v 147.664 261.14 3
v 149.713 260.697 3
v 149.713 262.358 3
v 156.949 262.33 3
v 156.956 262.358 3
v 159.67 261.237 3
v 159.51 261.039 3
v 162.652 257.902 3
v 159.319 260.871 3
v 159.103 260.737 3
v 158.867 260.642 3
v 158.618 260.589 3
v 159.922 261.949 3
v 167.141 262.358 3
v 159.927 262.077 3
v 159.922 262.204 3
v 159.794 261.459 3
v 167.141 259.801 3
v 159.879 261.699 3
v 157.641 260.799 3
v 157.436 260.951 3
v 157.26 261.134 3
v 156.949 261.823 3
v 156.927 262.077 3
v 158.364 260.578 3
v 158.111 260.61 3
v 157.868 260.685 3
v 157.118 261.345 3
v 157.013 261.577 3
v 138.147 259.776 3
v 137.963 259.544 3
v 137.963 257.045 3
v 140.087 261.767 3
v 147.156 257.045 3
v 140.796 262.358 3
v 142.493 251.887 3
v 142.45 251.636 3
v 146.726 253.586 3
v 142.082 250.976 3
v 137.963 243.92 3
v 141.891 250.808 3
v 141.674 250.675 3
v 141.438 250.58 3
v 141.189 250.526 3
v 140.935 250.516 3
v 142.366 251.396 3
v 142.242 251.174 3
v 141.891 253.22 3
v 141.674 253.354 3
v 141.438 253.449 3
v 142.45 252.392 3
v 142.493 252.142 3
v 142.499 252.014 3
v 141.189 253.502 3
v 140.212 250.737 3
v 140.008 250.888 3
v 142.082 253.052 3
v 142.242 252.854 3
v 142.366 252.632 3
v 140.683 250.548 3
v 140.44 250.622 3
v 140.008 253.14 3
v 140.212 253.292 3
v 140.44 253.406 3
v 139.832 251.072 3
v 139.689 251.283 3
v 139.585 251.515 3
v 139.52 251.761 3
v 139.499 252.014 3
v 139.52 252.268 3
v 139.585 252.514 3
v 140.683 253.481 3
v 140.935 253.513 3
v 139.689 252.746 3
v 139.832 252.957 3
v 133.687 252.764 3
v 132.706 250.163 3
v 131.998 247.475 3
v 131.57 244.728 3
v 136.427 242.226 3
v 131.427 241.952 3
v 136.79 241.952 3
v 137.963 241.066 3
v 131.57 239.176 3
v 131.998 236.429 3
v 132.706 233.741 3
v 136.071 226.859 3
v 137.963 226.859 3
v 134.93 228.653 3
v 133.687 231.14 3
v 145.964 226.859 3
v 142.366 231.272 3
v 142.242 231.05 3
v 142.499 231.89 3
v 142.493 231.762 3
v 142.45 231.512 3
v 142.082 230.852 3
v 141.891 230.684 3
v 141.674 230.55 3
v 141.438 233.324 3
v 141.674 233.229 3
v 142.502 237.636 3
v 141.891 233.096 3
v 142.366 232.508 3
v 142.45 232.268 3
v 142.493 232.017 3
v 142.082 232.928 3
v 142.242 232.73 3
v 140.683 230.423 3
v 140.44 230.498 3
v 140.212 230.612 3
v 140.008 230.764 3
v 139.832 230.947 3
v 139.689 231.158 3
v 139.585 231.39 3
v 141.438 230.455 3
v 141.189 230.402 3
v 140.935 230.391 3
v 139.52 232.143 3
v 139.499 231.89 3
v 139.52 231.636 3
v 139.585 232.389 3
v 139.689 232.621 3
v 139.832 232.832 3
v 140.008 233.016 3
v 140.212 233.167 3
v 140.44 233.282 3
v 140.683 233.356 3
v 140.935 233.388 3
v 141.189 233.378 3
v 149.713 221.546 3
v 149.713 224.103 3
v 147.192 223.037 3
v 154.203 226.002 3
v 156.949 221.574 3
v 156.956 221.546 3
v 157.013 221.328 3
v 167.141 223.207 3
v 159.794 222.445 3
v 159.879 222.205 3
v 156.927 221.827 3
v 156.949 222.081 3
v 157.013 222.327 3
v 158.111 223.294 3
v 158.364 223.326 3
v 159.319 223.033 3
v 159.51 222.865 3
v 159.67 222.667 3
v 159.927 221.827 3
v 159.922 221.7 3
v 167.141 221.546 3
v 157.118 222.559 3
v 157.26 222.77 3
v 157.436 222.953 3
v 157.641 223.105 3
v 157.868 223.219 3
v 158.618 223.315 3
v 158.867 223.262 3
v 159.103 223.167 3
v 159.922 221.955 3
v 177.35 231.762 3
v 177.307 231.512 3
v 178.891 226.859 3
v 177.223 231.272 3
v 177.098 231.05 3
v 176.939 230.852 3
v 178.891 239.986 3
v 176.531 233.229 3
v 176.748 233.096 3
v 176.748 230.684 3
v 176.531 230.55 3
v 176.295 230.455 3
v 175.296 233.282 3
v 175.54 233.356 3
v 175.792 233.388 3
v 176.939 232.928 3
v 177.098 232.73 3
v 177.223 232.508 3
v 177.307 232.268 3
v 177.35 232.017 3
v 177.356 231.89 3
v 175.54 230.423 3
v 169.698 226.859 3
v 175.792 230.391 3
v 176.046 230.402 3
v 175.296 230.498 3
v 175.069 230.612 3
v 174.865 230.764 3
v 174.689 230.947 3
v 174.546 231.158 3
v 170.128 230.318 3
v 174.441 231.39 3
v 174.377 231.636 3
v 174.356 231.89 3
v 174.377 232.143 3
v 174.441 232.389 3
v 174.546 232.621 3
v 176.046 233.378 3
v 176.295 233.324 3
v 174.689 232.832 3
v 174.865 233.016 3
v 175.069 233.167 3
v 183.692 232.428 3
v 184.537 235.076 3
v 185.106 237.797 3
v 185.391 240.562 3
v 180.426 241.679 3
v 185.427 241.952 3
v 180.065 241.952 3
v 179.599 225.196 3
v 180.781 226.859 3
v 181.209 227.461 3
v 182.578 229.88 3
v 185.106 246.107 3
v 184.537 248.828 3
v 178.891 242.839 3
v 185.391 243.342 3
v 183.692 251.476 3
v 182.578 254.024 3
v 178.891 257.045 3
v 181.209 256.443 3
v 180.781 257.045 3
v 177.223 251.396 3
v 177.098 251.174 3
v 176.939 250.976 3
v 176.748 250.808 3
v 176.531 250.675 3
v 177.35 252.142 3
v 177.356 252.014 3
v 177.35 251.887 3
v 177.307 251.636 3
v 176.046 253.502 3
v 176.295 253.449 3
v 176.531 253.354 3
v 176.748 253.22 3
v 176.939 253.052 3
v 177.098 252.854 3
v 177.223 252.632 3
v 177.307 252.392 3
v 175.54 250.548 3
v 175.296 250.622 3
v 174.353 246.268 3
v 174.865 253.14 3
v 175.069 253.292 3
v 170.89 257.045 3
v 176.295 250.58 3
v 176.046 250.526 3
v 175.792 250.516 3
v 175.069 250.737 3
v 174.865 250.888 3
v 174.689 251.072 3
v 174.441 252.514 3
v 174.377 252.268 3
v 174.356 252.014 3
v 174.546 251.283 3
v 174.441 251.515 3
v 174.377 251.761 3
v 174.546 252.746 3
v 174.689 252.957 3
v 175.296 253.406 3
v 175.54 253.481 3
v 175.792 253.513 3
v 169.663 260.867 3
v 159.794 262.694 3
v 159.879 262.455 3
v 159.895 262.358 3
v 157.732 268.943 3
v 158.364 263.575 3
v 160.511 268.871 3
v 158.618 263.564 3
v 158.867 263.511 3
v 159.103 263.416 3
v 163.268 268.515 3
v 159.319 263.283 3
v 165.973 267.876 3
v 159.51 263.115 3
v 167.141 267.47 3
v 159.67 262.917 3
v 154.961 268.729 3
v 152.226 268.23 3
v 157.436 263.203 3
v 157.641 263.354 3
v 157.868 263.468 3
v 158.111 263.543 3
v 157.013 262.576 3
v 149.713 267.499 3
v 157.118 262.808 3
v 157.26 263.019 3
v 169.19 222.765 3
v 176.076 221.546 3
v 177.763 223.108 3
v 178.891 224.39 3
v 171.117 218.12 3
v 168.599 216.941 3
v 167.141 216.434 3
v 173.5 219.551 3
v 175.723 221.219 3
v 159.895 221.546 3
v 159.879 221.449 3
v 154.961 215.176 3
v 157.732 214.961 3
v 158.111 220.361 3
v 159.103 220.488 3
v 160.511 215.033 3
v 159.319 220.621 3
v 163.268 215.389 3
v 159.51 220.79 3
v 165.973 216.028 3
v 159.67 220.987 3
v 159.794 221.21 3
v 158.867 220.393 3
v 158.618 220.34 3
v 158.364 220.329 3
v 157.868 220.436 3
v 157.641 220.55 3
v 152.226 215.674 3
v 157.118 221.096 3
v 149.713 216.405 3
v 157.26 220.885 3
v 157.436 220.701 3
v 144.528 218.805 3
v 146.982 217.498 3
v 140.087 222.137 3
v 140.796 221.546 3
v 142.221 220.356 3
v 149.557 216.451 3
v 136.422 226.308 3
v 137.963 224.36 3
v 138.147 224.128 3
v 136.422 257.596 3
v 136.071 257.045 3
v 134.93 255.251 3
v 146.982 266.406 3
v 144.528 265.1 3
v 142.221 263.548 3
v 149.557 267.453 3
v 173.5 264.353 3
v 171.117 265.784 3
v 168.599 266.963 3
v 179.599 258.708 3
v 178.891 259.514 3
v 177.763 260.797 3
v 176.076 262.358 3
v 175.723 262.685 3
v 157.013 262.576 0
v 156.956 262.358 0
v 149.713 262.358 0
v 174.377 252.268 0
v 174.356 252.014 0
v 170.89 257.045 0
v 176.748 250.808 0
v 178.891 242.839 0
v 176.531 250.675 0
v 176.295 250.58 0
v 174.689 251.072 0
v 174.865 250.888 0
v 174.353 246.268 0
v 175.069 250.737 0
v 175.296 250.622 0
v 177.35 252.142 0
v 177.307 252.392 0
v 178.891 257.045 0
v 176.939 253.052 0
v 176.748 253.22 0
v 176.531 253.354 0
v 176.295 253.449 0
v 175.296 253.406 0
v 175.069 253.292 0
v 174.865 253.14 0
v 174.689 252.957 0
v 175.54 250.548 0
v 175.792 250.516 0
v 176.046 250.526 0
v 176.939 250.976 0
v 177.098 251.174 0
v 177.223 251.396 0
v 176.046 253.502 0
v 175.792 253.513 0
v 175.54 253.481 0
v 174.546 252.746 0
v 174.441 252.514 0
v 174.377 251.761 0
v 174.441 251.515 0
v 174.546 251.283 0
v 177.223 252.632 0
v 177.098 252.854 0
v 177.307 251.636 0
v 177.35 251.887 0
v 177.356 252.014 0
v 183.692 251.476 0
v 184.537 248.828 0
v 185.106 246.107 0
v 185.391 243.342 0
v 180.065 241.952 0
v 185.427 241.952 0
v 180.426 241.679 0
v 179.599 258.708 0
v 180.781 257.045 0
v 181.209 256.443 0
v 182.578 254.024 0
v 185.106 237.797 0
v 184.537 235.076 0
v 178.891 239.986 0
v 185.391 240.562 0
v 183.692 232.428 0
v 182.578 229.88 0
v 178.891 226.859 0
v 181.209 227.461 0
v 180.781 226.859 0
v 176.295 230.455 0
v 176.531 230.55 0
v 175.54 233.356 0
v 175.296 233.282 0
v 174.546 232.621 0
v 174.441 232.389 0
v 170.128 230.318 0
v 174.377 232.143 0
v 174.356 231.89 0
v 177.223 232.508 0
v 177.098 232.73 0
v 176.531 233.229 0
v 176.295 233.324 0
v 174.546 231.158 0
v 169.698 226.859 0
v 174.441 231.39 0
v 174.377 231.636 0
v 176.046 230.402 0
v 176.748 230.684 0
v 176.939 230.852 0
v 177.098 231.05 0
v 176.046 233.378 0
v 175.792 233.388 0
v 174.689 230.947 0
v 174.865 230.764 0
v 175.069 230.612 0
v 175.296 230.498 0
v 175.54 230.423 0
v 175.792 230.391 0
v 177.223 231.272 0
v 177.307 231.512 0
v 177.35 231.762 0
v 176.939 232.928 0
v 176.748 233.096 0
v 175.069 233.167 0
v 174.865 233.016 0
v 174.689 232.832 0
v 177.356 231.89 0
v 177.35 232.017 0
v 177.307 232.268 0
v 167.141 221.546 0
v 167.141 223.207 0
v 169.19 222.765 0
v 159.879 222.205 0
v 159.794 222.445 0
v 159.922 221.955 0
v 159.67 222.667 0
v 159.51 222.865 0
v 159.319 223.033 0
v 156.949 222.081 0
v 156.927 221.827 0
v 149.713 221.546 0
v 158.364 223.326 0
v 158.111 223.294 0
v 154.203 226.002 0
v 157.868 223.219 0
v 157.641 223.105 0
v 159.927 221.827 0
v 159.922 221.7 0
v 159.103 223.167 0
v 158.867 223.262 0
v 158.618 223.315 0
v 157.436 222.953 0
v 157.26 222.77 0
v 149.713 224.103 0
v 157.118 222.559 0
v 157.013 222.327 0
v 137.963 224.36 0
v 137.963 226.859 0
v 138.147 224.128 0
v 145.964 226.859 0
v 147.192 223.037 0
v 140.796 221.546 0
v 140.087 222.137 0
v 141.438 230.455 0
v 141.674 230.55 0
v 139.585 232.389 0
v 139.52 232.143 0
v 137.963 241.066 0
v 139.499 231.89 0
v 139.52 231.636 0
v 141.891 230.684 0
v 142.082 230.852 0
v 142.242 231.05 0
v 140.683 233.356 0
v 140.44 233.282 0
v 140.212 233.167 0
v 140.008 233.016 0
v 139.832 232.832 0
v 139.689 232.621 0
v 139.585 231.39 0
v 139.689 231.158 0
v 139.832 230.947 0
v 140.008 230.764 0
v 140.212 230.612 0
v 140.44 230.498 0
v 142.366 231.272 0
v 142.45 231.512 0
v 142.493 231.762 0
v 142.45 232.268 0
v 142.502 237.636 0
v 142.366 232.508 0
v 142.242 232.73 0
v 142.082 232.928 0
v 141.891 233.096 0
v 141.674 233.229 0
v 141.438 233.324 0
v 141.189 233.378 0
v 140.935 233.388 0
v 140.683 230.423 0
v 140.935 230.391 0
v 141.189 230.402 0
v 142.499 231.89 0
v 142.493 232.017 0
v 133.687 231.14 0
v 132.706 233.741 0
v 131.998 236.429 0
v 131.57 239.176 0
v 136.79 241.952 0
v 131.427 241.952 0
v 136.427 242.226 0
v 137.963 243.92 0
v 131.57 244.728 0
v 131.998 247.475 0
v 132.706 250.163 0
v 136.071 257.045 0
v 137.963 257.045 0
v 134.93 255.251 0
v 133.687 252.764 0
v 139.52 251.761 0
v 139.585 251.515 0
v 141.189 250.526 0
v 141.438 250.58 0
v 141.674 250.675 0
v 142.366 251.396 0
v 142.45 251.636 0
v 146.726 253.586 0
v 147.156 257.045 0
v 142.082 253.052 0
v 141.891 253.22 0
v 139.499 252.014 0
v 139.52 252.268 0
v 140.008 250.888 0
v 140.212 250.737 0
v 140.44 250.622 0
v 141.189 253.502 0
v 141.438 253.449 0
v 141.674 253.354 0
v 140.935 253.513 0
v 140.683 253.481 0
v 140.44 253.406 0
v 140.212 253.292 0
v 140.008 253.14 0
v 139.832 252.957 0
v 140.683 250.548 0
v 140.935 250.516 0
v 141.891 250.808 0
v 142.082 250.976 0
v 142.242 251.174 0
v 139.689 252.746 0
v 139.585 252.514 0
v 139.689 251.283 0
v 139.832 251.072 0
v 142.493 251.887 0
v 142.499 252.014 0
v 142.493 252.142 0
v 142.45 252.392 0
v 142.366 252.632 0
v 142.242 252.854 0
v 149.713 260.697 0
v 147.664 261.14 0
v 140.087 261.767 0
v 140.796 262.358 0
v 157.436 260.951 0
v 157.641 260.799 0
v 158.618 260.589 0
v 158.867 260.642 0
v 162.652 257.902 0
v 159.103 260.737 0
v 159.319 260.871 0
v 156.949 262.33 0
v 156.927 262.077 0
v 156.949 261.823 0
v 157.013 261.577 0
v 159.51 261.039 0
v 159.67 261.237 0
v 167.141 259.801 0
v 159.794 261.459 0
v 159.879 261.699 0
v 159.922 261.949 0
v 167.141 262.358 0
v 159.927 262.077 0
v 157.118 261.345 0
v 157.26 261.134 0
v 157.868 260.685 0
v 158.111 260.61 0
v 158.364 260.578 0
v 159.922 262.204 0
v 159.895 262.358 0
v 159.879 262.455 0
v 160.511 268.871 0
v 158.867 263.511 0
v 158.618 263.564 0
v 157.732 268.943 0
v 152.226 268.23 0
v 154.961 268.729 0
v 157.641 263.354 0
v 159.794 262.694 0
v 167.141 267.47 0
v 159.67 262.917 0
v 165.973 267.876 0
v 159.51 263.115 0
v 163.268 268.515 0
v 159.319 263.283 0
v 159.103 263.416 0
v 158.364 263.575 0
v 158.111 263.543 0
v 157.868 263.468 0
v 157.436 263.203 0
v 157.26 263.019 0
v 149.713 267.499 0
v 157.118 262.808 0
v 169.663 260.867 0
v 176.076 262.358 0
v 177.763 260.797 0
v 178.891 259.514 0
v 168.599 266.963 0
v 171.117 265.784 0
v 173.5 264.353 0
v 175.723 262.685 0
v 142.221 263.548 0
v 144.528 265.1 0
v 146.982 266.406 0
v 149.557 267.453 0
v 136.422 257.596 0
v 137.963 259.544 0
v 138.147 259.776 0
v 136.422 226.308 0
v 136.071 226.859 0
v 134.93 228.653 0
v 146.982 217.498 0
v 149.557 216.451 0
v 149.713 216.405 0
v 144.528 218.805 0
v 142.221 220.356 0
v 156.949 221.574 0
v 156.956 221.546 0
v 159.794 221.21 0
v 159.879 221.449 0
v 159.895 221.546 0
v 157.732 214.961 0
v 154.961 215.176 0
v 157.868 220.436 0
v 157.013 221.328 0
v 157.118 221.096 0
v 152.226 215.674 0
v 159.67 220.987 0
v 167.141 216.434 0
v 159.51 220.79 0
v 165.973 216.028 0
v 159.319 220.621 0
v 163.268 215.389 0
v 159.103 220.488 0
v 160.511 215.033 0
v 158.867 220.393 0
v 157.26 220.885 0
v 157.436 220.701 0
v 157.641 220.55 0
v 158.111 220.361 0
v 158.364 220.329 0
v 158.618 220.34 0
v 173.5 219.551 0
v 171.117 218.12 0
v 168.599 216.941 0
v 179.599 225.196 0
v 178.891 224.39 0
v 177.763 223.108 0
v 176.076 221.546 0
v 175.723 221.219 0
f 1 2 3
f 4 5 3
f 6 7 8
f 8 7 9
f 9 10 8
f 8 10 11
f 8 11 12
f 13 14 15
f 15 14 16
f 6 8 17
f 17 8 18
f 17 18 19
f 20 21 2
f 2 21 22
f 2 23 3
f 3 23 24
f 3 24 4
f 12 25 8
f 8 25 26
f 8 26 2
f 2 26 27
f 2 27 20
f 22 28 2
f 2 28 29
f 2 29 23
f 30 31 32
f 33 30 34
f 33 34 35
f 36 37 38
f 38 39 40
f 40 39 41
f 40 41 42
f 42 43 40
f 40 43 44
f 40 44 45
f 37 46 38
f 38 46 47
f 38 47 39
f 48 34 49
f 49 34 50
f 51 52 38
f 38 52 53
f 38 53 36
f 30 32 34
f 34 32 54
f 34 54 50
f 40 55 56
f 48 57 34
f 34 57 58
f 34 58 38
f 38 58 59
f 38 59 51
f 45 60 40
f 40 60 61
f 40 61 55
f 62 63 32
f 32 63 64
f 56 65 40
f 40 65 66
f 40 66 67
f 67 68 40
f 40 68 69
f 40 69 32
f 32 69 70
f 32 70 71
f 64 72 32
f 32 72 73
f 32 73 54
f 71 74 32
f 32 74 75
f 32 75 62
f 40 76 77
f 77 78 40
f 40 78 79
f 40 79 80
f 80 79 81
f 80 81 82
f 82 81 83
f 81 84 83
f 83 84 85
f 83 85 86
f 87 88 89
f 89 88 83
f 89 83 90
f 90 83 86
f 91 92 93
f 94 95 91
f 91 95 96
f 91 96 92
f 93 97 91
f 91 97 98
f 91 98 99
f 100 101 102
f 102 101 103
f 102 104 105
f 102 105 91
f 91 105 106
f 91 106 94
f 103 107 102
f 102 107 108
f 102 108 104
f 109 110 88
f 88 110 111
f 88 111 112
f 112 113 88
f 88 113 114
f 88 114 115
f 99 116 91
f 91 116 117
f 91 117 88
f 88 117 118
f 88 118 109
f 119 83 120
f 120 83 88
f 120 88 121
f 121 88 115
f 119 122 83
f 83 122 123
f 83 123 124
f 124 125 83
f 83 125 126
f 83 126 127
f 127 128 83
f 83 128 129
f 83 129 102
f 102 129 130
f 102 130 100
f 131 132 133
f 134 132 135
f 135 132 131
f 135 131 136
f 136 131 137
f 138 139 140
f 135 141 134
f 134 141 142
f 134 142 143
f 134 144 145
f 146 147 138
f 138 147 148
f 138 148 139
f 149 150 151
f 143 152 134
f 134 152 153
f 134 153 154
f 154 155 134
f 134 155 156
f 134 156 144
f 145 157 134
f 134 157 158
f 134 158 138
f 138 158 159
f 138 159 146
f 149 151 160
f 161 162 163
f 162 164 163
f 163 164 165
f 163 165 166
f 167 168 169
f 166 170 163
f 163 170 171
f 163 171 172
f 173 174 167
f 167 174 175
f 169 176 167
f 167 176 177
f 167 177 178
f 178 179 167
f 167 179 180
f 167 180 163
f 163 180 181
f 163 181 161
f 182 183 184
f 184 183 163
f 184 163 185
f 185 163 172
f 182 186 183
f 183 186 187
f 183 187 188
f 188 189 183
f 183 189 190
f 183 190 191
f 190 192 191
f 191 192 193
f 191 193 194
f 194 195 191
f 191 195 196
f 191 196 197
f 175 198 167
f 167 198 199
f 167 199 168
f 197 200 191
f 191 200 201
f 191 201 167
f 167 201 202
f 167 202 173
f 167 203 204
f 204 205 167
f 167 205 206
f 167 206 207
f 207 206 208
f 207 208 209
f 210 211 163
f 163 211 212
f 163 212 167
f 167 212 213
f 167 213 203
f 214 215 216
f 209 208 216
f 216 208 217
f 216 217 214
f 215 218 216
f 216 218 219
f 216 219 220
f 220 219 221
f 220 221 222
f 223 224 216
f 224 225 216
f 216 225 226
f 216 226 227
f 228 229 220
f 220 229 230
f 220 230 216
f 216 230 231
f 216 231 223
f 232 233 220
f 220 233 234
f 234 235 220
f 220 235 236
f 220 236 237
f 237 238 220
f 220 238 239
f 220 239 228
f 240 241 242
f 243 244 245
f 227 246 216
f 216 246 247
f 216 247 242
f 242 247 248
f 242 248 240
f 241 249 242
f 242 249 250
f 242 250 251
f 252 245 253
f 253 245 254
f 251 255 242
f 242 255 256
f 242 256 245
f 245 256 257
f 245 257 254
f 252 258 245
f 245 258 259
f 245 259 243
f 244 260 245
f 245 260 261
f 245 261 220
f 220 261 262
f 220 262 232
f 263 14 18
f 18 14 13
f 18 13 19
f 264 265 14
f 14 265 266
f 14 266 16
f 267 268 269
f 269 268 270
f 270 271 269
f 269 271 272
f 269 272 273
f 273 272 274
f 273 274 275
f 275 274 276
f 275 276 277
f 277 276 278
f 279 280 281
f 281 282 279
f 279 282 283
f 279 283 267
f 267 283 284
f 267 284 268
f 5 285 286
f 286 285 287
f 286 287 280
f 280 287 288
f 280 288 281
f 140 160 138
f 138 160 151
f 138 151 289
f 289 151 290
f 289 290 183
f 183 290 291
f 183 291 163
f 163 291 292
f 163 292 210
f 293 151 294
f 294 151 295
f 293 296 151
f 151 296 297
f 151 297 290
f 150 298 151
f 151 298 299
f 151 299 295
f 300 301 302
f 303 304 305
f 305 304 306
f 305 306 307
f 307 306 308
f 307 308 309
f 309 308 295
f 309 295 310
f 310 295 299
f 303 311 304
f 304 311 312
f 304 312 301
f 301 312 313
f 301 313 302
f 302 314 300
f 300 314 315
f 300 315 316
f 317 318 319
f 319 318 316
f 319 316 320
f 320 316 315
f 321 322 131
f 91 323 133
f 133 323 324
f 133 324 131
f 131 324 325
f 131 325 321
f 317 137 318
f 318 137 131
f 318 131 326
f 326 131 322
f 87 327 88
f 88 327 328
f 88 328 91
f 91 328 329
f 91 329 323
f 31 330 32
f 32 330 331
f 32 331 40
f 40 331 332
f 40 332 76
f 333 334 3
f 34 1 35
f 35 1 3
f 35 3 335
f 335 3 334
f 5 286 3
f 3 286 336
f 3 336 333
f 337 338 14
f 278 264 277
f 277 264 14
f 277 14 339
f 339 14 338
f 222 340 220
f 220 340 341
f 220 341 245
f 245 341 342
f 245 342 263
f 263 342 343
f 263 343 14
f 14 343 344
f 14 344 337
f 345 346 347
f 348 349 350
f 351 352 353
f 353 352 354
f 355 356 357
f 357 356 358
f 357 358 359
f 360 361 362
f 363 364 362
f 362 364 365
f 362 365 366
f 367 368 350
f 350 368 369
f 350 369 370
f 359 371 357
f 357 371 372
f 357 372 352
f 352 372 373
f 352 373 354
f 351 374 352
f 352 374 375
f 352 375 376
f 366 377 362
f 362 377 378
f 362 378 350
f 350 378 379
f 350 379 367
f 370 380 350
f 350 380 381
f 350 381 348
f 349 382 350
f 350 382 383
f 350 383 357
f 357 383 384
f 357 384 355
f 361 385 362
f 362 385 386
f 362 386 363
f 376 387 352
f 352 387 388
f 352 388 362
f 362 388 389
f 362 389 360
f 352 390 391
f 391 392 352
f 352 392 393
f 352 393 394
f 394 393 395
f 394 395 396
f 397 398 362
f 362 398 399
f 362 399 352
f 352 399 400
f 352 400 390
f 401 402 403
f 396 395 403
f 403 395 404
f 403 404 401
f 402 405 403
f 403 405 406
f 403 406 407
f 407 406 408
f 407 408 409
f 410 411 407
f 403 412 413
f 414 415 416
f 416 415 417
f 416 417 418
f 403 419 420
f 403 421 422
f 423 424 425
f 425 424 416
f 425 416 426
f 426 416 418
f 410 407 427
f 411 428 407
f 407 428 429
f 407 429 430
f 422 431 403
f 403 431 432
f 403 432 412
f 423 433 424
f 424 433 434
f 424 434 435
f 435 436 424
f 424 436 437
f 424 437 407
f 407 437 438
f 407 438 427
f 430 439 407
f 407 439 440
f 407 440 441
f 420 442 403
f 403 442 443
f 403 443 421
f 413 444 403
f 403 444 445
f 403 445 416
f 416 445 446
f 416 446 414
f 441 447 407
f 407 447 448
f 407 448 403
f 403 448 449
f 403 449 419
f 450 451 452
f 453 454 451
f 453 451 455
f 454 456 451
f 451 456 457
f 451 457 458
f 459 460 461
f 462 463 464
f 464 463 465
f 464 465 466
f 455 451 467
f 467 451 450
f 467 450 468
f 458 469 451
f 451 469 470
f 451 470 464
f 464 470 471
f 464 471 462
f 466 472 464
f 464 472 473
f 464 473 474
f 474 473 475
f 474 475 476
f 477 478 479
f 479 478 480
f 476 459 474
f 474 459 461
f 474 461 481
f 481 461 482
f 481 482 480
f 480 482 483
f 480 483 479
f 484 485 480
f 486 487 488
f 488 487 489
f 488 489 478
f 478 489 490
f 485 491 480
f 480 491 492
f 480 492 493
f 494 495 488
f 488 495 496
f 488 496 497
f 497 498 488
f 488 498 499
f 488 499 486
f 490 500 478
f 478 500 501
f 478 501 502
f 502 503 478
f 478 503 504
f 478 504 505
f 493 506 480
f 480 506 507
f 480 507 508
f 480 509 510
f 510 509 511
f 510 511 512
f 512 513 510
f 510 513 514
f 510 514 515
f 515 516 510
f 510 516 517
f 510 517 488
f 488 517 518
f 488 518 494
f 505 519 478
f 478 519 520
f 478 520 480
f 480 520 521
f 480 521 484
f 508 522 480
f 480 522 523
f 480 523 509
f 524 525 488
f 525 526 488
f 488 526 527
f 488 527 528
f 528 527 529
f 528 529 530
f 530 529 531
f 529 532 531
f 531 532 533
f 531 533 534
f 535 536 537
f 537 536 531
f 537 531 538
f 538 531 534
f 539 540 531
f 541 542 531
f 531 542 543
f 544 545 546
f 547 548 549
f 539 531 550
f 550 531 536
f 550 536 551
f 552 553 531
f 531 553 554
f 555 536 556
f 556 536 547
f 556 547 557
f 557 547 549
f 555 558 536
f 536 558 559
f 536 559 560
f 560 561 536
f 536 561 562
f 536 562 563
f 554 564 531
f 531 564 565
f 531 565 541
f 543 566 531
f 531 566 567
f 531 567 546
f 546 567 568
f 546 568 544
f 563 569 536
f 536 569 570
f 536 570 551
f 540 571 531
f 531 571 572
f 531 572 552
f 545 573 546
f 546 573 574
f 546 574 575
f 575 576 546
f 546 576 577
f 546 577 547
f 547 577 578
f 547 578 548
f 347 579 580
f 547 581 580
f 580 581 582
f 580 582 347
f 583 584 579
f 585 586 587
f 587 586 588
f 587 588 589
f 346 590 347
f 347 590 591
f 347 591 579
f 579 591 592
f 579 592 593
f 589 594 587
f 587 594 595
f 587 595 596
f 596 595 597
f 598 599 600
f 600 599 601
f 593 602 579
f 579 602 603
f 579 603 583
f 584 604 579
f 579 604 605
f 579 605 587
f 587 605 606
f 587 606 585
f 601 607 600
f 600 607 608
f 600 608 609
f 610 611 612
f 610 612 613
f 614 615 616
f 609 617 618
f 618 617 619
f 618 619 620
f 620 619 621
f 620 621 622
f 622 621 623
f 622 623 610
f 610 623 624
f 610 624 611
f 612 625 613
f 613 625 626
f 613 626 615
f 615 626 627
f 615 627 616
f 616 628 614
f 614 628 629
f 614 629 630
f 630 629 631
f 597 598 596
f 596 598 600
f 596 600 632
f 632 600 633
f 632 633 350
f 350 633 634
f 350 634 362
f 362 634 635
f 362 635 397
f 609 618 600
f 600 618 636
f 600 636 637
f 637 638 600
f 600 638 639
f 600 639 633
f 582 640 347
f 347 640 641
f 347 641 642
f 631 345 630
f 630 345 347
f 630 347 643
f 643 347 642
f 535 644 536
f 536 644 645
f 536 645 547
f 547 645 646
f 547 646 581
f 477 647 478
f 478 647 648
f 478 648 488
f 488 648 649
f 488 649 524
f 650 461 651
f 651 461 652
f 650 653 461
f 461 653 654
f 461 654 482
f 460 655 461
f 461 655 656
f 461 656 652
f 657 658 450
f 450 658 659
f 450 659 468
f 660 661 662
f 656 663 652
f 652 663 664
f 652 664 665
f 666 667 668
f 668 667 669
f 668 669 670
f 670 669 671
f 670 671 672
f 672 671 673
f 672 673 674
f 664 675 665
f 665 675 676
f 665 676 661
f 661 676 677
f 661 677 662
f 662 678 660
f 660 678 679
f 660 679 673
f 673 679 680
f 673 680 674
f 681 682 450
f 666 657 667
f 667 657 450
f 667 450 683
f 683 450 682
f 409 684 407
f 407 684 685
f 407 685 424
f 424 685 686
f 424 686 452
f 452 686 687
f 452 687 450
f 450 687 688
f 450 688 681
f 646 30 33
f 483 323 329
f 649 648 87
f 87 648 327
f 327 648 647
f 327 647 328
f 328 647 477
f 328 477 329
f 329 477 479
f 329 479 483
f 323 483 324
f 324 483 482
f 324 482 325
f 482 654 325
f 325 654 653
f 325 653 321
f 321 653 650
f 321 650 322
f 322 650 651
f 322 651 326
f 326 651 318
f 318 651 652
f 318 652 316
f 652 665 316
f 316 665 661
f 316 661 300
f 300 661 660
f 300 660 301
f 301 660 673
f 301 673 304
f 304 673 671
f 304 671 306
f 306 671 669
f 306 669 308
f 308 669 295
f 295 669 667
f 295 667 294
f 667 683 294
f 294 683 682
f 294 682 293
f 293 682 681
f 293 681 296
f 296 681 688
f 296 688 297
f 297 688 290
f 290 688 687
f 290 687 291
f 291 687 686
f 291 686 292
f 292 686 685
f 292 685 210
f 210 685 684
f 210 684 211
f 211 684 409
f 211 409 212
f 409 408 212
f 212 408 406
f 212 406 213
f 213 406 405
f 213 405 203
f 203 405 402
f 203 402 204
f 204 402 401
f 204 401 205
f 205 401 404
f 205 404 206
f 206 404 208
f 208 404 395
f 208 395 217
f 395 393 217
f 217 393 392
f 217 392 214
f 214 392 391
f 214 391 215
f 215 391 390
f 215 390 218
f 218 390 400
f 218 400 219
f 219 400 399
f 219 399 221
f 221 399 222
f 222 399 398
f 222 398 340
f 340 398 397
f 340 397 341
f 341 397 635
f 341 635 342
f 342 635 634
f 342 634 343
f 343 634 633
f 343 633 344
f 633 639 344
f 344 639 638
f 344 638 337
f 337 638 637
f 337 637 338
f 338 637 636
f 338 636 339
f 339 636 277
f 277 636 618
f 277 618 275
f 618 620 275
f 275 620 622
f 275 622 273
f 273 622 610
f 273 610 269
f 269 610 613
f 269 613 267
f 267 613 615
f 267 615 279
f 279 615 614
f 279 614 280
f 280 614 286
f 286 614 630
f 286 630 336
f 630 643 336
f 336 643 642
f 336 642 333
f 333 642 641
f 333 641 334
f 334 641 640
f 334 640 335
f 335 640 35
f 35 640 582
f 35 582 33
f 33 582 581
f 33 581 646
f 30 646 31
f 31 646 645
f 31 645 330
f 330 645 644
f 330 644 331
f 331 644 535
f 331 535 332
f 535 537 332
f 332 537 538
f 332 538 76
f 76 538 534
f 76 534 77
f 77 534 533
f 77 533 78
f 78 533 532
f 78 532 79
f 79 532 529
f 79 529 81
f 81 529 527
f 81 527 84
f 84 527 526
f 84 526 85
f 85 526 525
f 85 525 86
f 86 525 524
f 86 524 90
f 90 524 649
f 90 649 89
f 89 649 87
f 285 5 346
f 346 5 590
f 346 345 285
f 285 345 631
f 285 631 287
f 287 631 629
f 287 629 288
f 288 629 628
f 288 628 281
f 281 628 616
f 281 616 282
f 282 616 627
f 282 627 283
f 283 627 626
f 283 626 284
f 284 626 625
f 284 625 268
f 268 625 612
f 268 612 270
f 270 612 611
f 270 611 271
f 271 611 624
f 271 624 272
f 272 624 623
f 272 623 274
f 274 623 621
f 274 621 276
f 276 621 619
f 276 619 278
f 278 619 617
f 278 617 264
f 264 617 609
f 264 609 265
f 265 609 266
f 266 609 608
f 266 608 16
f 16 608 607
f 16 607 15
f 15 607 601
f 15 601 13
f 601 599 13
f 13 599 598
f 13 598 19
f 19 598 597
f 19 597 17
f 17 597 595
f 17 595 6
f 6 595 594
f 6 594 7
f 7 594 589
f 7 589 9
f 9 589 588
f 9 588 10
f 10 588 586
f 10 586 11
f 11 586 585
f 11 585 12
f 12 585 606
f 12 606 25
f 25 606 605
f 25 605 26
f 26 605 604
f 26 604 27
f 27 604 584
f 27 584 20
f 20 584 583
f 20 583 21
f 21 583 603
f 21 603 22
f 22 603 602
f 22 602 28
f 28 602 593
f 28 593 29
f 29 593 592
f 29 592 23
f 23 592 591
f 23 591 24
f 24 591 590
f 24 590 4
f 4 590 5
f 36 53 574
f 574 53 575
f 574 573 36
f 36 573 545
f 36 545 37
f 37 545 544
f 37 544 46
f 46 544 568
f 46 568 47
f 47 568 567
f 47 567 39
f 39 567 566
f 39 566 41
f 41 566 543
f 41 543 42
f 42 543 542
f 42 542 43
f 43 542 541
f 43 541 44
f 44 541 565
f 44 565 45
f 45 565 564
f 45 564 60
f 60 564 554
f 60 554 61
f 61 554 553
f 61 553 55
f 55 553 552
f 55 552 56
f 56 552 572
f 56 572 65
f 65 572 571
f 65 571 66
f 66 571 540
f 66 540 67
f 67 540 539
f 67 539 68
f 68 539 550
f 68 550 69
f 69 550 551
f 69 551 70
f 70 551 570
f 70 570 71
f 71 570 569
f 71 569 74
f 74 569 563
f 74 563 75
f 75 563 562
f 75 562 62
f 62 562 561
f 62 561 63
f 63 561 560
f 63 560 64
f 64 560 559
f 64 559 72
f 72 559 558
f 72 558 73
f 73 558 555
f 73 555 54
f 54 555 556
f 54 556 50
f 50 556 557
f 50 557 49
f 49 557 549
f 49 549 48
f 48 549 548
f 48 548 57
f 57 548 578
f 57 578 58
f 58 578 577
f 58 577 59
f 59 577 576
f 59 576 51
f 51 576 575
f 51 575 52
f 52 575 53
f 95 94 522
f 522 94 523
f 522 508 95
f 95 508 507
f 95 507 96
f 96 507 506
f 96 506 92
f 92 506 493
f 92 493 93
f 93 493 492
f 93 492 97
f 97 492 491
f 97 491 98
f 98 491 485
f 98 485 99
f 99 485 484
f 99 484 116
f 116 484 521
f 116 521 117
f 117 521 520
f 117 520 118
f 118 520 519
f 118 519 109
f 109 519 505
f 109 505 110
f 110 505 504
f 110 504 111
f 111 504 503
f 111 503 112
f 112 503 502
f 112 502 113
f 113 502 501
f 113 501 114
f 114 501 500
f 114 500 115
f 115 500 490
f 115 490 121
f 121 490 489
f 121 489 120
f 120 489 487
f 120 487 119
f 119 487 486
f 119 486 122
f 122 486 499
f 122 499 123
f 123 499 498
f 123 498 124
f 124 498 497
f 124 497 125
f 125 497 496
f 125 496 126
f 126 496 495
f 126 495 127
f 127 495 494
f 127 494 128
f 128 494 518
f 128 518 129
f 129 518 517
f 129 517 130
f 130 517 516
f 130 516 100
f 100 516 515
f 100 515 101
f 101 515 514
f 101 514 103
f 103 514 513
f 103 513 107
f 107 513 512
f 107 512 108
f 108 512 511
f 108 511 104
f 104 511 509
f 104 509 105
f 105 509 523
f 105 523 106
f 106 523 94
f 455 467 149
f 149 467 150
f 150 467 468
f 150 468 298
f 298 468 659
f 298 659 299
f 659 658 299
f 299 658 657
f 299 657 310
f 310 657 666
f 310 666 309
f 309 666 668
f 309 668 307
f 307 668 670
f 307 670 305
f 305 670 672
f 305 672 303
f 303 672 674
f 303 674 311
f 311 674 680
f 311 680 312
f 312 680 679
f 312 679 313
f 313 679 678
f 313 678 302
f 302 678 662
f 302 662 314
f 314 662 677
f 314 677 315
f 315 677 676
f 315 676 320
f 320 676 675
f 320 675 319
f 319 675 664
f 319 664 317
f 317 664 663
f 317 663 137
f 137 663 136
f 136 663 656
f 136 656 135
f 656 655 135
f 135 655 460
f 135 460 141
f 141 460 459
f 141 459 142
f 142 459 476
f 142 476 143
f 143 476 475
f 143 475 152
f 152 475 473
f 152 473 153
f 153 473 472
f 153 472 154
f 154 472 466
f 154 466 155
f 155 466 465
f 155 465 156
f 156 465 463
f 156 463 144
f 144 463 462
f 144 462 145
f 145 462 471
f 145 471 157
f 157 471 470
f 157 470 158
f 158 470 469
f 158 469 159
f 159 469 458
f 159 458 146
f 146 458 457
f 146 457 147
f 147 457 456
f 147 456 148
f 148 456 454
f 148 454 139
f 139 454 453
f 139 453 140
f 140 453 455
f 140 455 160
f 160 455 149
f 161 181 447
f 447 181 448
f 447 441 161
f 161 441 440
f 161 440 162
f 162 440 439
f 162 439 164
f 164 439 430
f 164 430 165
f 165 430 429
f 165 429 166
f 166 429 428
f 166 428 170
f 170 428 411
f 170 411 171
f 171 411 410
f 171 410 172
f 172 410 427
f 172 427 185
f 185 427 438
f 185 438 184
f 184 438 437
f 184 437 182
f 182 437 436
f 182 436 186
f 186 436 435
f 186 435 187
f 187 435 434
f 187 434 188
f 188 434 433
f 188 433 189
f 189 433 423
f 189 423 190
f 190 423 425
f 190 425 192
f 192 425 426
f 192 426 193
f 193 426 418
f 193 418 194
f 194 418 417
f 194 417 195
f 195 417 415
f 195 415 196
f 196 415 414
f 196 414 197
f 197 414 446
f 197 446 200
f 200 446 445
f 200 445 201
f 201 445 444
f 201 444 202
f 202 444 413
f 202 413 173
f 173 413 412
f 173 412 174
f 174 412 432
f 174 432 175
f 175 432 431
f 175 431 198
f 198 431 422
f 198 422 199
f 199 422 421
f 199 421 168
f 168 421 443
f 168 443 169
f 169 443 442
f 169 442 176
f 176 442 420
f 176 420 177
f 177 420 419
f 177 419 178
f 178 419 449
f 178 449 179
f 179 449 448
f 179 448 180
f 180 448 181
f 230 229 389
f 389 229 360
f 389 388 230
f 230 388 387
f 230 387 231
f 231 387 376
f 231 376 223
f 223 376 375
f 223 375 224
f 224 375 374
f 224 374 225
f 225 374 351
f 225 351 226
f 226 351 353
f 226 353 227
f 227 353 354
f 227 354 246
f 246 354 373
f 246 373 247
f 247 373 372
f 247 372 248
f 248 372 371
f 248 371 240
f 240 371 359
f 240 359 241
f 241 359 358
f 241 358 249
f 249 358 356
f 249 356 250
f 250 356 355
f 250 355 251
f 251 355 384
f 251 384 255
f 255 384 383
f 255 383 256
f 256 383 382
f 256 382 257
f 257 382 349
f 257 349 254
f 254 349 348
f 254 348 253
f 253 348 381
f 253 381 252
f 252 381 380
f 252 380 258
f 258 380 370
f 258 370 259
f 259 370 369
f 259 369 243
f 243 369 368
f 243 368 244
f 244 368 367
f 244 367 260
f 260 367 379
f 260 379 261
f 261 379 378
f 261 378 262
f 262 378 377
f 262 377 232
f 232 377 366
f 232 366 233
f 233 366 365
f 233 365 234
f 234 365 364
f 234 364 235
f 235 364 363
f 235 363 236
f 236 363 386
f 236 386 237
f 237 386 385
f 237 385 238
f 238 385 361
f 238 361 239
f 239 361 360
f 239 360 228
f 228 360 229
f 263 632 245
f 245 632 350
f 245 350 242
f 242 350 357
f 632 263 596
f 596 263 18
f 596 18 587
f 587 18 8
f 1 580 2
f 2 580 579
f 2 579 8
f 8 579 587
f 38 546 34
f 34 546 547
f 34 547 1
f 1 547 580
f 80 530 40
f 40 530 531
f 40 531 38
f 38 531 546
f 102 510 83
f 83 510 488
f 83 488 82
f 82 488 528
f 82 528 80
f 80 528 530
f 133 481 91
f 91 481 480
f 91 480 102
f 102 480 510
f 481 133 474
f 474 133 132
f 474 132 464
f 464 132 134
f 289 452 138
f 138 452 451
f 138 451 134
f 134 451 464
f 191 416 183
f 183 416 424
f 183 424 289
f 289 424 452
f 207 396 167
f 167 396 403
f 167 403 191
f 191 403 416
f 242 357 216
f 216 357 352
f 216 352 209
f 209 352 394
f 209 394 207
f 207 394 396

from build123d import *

# Parameters (mm, degrees)
MODEL_R                 = 27
MODEL_R_2               = 1.5
SALIENTE_EXTRUIR1_DEPTH = 3


with BuildPart() as part:
    # Model → Saliente-Extruir1 (new body)
    with BuildSketch(Plane.XY):
        with Locations((158.427277744, 241.952019993)):
            Circle(MODEL_R)
        with Locations((158.427277744, 262.076631791)):
            Circle(MODEL_R_2, mode=Mode.SUBTRACT)
        with Locations((140.998852686, 252.014325892)):
            Circle(MODEL_R_2, mode=Mode.SUBTRACT)
        with Locations((140.998852686, 231.889714094)):
            Circle(MODEL_R_2, mode=Mode.SUBTRACT)
        with Locations((158.427277744, 221.827408196)):
            Circle(MODEL_R_2, mode=Mode.SUBTRACT)
        with Locations((175.855702802, 231.889714094)):
            Circle(MODEL_R_2, mode=Mode.SUBTRACT)
        with Locations((175.855702802, 252.014325892)):
            Circle(MODEL_R_2, mode=Mode.SUBTRACT)
        Polygon((174.352685576, 246.268428845), (180.425586348, 241.679222344), (170.128101379, 230.318416671), (169.190182352, 222.764527077), (154.202693546, 226.002007819), (147.191873748, 223.037324726), (142.501869912, 237.635611142), (136.427281639, 242.226092863), (146.726454109, 253.585623316), (147.664373136, 261.139512909), (162.651861941, 257.902032168), (169.66268174, 260.86671526), align=None, mode=Mode.SUBTRACT)
    extrude(amount=SALIENTE_EXTRUIR1_DEPTH)


solid = part.part
